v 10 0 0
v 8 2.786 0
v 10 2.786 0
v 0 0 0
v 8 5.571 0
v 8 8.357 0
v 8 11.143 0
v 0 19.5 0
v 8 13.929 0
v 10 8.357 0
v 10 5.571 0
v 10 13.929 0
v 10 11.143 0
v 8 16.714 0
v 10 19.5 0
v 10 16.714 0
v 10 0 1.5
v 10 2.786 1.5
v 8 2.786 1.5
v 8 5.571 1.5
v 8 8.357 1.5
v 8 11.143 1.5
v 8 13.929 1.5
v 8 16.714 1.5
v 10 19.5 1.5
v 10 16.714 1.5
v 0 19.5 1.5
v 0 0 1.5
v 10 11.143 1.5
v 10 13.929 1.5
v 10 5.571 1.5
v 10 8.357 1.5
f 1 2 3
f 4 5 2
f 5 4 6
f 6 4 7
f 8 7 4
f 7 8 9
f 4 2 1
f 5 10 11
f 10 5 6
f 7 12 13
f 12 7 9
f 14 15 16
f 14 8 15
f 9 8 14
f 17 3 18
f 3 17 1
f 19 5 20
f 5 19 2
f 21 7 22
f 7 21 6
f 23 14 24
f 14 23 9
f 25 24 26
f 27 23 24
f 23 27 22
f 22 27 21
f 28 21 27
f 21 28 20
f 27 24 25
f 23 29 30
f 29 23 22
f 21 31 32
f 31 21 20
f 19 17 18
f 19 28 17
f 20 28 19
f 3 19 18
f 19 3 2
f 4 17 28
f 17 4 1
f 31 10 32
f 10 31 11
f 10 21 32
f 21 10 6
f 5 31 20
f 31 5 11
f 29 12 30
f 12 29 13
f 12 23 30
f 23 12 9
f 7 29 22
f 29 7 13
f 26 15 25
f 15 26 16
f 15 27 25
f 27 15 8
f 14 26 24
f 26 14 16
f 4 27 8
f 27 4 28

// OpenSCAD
// file: CommonModules.scad
//    $$$$$$\   $$$$$$\   $$$$$$\  $$\   $$\ $$$$$$\ $$$$$$$\  $$$$$$$$\ 
//    $$  __$$\ $$  __$$\ $$  __$$\ $$ |  $$ |\_$$  _|$$  __$$\ $$  _____|
//    $$ /  $$ |$$ /  \__|$$ /  $$ |$$ |  $$ |  $$ |  $$ |  $$ |$$ |      
//    $$$$$$$$ |$$ |      $$ |  $$ |$$ |  $$ |  $$ |  $$$$$$$  |$$$$$\    
//    $$  __$$ |$$ |      $$ |  $$ |$$ |  $$ |  $$ |  $$  __$$< $$  __|   
//    $$ |  $$ |$$ |  $$\ $$ $$\$$ |$$ |  $$ |  $$ |  $$ |  $$ |$$ |      
//    $$ |  $$ |\$$$$$$  |\$$$$$$ / \$$$$$$  |$$$$$$\ $$ |  $$ |$$$$$$$$\ 
//    \__|  \__| \______/  \___$$$\  \______/ \______|\__|  \__|\________|
//                            \___|                                      
//      
//       Print and play - OpenScad project - by Bekkalizer - GPLv3
// 
// This file is part of the Acquire stl project.
// Copyright (C) 2025 Bekkalizer
//
// Acquire stl project is free software: you can redistribute it and/or modify
// it under the terms of the GNU General Public License as published
// by the Free Software Foundation, either version 3 of the License,
// or (at your option) any later version.
//
// Acquire stl project is distributed in the hope that it will be useful,
// but WITHOUT ANY WARRANTY; without even the implied warranty of
// MERCHANTABILITY or FITNESS FOR A PARTICULAR PURPOSE. See the
// GNU General Public License for more details.
//
// You should have received a copy of the GNU General Public License
// along with this program. If not, see <https://www.gnu.org/licenses/>.

module cube_with_extruded_bottom( cube_size = [19.5, 19.5, 5] ) {
    //Main build script parameters:
    max_width = 19.2;
    top_lip = 2;
    top_height = 3;
    //Calculated hole size:
    inside_margins = 1;
    hole_width = max_width - 2 * (top_lip) + inside_margins;
    hole_height = top_height + inside_margins;
    
    hole_size = [hole_width, hole_width, hole_height]; // Hole dimensions (same height as cube)
    hole_offset = [(cube_size[0] - hole_size[0]) / 2, (cube_size[1] - hole_size[1]) / 2, -0.1]; // Centered on bottom
    difference() {
        // Main Cube
        cube(cube_size);
        
        // Hole Cube (subtracting from bottom)
        translate(hole_offset)
            cube(hole_size);
    }
}
// main file
//    $$$$$$\   $$$$$$\   $$$$$$\  $$\   $$\ $$$$$$\ $$$$$$$\  $$$$$$$$\
//    $$  __$$\ $$  __$$\ $$  __$$\ $$ |  $$ |\_$$  _|$$  __$$\ $$  _____|
//    $$ /  $$ |$$ /  \__|$$ /  $$ |$$ |  $$ |  $$ |  $$ |  $$ |$$ |
//    $$$$$$$$ |$$ |      $$ |  $$ |$$ |  $$ |  $$ |  $$$$$$$  |$$$$$\
//    $$  __$$ |$$ |      $$ |  $$ |$$ |  $$ |  $$ |  $$  __$$< $$  __|
//    $$ |  $$ |$$ |  $$\ $$ $$\$$ |$$ |  $$ |  $$ |  $$ |  $$ |$$ |
//    $$ |  $$ |\$$$$$$  |\$$$$$$ / \$$$$$$  |$$$$$$\ $$ |  $$ |$$$$$$$$\
//    \__|  \__| \______/  \___$$$\  \______/ \______|\__|  \__|\________|
//                            \___|
//
//       Print and play - OpenScad project - by Bekkalizer and Claude
//
// This file is part of the Acquire stl project.
// Copyright (C) 2025 Bekkalizer
//
// Acquire stl project is free software: you can redistribute it and/or modify
// it under the terms of the GNU General Public License as published
// by the Free Software Foundation, either version 3 of the License,
// or (at your option) any later version.
//
// Acquire stl project is distributed in the hope that it will be useful,
// but WITHOUT ANY WARRANTY; without even the implied warranty of
// MERCHANTABILITY or FITNESS FOR A PARTICULAR PURPOSE. See the
// GNU General Public License for more details.
//
// You should have received a copy of the GNU General Public License
// along with this program. If not, see <https://www.gnu.org/licenses/>.

use <CommonModules.scad>

// ============== Parameters ==============
bottom_width = 19.5;
wall_width = 1.5;
wall_height = 8;
segments = 3;
segment_height = 2;

module castle_top() {
    cube([wall_width, bottom_width, wall_height]);
    segment_width = bottom_width / (segments * 2 + 1);
    translate([0, 0, wall_height]) {
        for(i = [0 : segments]) {
            translate([0, i * segment_width * 2, 0]) {
                cube([wall_width, segment_width, segment_height]);
            }
        }
    }
}

translate([0, 0, wall_width])
    rotate([0, 90, 0])
        castle_top();
